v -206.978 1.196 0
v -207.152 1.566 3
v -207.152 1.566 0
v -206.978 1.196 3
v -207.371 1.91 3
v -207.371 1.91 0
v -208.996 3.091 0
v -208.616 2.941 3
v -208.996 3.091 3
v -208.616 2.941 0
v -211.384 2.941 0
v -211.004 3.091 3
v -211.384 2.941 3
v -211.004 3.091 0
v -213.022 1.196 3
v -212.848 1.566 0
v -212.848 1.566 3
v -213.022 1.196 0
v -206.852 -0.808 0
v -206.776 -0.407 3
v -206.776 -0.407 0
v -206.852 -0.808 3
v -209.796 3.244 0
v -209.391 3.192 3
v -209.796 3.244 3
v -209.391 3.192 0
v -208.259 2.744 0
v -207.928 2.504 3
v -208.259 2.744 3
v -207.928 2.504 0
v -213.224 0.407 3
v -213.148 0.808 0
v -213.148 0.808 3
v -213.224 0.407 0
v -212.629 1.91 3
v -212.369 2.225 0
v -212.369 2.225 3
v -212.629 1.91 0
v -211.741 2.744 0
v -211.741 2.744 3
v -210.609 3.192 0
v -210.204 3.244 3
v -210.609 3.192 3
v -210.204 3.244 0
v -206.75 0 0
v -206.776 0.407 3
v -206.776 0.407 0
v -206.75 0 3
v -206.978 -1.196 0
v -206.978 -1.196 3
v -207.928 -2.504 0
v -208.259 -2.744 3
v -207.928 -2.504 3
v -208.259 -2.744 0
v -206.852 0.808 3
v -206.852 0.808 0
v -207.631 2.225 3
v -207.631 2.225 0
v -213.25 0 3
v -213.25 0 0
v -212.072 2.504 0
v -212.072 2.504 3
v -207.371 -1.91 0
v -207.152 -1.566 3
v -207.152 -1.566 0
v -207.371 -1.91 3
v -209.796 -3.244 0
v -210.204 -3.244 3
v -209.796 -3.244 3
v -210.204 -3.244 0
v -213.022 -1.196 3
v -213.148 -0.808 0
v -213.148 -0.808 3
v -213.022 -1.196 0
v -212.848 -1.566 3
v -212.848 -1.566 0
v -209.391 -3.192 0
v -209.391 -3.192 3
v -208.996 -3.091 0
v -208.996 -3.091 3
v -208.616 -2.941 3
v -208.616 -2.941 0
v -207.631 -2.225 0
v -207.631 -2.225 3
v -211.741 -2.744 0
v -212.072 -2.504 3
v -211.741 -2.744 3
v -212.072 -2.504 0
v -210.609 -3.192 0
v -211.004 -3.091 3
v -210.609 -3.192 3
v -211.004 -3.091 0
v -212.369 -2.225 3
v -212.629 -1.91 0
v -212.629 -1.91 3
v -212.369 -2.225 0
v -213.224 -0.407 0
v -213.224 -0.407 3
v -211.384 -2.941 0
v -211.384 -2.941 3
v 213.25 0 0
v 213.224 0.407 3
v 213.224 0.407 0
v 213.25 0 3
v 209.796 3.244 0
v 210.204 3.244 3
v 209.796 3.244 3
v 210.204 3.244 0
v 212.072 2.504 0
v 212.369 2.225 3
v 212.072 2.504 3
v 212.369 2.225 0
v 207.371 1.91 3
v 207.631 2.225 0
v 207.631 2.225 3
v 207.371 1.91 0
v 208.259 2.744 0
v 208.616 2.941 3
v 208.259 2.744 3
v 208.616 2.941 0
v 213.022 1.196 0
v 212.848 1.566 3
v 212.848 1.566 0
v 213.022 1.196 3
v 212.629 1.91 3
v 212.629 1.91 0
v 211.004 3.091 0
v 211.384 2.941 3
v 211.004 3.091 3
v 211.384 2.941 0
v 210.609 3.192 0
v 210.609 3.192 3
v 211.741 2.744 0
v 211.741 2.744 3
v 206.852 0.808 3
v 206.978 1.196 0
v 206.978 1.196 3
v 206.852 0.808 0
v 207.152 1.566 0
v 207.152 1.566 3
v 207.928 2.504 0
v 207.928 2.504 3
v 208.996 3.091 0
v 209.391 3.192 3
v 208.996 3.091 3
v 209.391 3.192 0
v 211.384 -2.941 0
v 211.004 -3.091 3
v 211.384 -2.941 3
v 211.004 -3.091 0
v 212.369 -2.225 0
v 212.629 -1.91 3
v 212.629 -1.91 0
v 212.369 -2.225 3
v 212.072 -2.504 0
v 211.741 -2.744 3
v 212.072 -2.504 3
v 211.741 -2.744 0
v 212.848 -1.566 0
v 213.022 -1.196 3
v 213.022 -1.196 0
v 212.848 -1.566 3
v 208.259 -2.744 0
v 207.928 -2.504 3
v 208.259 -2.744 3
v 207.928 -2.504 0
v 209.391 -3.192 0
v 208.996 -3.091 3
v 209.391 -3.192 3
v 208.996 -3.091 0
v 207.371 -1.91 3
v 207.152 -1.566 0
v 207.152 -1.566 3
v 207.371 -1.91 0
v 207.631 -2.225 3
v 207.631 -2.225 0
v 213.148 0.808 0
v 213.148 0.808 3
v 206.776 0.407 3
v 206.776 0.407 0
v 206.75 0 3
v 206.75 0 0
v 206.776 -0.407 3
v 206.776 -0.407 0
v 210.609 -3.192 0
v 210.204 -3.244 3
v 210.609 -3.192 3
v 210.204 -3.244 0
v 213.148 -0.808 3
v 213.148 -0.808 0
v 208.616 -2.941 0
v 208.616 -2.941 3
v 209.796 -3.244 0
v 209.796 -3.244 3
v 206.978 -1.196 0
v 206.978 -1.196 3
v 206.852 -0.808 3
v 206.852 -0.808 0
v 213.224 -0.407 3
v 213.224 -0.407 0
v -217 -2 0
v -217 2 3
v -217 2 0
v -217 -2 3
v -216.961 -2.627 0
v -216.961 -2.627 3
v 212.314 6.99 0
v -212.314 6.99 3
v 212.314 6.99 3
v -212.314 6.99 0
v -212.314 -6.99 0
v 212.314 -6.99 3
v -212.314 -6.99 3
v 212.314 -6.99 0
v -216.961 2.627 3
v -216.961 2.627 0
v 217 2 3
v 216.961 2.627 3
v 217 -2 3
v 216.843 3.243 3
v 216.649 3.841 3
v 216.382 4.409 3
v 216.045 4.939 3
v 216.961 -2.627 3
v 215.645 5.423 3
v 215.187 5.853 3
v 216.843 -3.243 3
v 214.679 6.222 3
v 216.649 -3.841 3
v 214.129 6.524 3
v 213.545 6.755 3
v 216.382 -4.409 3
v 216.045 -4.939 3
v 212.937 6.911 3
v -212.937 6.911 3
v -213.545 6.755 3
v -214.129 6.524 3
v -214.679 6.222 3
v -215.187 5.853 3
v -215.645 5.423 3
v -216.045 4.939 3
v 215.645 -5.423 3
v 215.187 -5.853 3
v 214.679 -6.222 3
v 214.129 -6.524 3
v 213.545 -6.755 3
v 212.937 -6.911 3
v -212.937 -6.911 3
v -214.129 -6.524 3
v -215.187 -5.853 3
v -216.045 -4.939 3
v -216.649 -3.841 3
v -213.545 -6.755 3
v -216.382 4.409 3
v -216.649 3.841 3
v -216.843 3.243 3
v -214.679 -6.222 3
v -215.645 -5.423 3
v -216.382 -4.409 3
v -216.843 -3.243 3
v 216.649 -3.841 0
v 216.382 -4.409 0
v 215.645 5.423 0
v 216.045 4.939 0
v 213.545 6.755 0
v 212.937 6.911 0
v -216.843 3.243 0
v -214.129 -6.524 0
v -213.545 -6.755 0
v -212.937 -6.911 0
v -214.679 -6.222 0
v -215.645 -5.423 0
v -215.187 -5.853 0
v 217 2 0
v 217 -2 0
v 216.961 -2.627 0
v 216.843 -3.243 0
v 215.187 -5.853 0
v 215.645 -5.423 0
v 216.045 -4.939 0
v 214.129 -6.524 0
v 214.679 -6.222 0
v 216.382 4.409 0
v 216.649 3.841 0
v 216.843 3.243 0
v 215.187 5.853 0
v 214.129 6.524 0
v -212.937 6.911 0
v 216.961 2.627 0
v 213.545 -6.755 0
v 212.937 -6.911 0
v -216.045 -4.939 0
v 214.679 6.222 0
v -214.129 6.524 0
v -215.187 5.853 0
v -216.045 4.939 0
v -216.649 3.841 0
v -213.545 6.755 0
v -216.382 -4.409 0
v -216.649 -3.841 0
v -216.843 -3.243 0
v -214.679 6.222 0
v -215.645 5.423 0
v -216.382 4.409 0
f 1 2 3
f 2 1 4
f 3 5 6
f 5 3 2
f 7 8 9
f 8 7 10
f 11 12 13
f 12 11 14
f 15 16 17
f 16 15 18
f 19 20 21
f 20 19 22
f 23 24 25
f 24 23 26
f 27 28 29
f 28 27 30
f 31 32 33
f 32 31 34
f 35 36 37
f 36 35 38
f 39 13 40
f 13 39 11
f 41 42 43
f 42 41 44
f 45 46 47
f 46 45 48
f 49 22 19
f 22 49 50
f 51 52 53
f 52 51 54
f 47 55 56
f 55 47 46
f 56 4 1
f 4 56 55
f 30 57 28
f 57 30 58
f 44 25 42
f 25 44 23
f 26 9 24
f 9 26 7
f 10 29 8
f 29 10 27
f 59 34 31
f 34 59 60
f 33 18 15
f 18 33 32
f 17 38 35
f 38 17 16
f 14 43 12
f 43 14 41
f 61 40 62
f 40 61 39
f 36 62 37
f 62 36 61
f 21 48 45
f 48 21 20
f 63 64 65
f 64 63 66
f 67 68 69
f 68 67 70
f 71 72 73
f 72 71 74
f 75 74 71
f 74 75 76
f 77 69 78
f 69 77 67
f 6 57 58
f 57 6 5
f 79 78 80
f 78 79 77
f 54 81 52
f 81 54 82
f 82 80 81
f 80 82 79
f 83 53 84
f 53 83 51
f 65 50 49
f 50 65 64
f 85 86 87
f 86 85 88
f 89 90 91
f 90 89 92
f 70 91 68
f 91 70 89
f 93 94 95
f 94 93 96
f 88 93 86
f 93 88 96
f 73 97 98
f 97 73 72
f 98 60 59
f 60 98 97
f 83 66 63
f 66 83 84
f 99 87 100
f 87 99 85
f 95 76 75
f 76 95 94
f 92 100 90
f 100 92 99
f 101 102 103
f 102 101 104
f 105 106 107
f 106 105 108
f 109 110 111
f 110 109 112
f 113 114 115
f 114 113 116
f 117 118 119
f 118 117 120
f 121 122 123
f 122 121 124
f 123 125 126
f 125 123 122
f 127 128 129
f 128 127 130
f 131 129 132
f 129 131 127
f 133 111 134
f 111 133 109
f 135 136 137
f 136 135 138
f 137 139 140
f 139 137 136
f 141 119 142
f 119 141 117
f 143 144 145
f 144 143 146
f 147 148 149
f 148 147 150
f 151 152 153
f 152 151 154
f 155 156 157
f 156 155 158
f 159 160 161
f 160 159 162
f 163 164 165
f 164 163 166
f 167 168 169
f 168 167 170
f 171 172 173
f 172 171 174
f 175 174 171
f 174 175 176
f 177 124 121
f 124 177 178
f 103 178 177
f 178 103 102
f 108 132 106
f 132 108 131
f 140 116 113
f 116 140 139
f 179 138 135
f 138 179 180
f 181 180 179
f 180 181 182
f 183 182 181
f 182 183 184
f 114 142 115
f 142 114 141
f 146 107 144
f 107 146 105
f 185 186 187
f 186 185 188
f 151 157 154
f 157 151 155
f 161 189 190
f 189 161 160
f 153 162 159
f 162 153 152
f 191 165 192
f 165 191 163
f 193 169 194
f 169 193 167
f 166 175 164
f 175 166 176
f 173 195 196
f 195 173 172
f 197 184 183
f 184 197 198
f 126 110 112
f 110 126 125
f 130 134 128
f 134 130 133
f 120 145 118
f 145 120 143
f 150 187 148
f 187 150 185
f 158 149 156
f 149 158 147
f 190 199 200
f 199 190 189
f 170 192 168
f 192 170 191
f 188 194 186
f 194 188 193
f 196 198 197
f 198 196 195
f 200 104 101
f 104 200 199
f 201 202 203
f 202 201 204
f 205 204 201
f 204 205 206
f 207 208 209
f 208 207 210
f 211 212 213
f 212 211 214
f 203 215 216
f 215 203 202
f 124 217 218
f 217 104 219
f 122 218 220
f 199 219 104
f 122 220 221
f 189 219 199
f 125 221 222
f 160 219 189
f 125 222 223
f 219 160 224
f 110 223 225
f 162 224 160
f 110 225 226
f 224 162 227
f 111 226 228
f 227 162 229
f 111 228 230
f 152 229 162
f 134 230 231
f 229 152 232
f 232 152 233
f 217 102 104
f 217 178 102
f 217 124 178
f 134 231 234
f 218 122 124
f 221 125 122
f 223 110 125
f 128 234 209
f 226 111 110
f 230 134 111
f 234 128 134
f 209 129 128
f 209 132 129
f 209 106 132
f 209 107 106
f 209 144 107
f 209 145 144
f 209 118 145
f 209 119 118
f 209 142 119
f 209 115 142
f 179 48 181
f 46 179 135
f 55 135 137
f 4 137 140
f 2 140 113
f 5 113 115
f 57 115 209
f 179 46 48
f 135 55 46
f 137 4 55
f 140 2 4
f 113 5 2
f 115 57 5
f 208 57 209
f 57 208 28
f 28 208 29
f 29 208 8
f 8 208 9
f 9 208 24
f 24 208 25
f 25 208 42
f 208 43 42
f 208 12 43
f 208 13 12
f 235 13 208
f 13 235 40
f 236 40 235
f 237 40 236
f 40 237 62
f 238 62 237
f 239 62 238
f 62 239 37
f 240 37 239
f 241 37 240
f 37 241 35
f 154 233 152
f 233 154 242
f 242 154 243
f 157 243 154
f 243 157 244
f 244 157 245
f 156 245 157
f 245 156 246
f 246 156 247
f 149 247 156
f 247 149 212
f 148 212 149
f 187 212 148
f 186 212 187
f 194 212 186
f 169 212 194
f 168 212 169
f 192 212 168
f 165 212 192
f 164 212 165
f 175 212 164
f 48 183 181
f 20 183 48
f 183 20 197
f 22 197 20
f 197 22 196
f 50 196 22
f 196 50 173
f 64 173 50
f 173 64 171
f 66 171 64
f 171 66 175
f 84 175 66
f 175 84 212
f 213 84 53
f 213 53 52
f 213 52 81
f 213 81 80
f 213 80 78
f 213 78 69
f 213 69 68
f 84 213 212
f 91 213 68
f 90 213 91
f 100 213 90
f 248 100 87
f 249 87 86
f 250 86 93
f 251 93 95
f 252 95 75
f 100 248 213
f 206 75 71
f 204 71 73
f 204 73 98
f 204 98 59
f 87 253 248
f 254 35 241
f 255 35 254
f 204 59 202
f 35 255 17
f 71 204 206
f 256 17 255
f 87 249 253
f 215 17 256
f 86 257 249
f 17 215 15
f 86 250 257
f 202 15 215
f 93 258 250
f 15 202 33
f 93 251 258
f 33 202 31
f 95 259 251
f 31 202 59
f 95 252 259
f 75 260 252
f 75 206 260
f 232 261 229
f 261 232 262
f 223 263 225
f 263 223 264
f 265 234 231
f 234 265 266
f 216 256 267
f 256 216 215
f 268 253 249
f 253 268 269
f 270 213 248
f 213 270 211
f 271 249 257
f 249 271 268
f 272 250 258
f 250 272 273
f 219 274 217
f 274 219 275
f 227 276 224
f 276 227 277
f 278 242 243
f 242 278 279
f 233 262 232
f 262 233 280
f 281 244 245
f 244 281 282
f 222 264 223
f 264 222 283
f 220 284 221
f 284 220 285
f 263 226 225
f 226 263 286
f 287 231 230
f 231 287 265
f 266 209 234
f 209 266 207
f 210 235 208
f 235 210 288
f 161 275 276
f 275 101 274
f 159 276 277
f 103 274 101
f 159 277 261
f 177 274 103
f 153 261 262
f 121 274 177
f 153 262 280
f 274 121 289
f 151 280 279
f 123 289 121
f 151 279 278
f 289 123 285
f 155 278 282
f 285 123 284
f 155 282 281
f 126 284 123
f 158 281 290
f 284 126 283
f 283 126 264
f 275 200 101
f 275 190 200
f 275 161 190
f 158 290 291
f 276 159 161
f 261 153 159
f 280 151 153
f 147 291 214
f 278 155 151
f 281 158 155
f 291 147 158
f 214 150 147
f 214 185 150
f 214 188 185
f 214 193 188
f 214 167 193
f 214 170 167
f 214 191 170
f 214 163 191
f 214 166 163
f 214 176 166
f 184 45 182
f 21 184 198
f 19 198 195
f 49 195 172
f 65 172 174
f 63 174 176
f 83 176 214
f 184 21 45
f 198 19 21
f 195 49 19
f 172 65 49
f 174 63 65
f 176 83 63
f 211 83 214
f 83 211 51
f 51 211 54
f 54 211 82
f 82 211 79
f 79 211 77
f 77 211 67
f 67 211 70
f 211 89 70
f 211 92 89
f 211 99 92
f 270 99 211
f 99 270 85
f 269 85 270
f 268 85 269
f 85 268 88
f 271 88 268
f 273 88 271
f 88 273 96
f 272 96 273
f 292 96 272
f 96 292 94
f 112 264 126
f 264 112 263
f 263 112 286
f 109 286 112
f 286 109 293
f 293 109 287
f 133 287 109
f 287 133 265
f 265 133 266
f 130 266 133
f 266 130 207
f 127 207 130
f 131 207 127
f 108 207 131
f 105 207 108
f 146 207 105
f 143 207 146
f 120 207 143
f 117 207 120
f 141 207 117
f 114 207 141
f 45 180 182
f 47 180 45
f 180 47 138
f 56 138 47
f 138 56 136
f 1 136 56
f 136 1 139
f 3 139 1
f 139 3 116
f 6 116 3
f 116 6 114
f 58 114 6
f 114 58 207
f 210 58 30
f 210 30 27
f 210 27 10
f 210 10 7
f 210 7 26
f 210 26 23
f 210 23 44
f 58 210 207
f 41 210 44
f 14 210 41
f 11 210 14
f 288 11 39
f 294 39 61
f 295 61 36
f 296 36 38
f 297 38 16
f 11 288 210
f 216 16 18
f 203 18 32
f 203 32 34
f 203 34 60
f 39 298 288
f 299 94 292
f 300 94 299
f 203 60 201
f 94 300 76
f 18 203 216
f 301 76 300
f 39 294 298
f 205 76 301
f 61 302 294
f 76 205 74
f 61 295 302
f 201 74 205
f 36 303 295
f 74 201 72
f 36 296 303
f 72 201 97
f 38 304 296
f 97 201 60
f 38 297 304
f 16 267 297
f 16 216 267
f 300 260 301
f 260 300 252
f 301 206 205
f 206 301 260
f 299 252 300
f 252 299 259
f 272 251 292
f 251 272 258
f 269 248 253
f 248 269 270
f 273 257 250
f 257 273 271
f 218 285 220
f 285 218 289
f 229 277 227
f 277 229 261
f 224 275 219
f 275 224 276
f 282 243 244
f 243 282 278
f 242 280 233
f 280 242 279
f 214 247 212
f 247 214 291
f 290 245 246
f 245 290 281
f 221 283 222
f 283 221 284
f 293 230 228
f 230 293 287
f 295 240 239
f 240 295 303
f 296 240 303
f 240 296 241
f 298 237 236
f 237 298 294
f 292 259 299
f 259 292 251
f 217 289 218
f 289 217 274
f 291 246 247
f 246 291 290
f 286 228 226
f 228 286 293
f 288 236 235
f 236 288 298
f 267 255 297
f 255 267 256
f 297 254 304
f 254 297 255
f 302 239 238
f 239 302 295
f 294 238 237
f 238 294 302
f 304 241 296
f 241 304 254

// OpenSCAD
$fn = 50;


difference() {
	union() {
		hull() {
			translate(v = [-212.0000000000, 2.0000000000, 0]) {
				cylinder(h = 3, r = 5);
			}
			translate(v = [212.0000000000, 2.0000000000, 0]) {
				cylinder(h = 3, r = 5);
			}
			translate(v = [-212.0000000000, -2.0000000000, 0]) {
				cylinder(h = 3, r = 5);
			}
			translate(v = [212.0000000000, -2.0000000000, 0]) {
				cylinder(h = 3, r = 5);
			}
		}
	}
	union() {
		translate(v = [-210.0000000000, 0.0000000000, 0]) {
			cylinder(h = 3, r = 3.2500000000);
		}
		translate(v = [210.0000000000, 0.0000000000, 0]) {
			cylinder(h = 3, r = 3.2500000000);
		}
		translate(v = [-210.0000000000, 0.0000000000, 0]) {
			cylinder(h = 3, r = 1.8000000000);
		}
		translate(v = [210.0000000000, 0.0000000000, 0]) {
			cylinder(h = 3, r = 1.8000000000);
		}
		translate(v = [-210.0000000000, 0.0000000000, 0]) {
			cylinder(h = 3, r = 1.8000000000);
		}
		translate(v = [210.0000000000, 0.0000000000, 0]) {
			cylinder(h = 3, r = 1.8000000000);
		}
		translate(v = [-210.0000000000, 0.0000000000, 0]) {
			cylinder(h = 3, r = 1.8000000000);
		}
		translate(v = [210.0000000000, 0.0000000000, 0]) {
			cylinder(h = 3, r = 1.8000000000);
		}
	}
}
